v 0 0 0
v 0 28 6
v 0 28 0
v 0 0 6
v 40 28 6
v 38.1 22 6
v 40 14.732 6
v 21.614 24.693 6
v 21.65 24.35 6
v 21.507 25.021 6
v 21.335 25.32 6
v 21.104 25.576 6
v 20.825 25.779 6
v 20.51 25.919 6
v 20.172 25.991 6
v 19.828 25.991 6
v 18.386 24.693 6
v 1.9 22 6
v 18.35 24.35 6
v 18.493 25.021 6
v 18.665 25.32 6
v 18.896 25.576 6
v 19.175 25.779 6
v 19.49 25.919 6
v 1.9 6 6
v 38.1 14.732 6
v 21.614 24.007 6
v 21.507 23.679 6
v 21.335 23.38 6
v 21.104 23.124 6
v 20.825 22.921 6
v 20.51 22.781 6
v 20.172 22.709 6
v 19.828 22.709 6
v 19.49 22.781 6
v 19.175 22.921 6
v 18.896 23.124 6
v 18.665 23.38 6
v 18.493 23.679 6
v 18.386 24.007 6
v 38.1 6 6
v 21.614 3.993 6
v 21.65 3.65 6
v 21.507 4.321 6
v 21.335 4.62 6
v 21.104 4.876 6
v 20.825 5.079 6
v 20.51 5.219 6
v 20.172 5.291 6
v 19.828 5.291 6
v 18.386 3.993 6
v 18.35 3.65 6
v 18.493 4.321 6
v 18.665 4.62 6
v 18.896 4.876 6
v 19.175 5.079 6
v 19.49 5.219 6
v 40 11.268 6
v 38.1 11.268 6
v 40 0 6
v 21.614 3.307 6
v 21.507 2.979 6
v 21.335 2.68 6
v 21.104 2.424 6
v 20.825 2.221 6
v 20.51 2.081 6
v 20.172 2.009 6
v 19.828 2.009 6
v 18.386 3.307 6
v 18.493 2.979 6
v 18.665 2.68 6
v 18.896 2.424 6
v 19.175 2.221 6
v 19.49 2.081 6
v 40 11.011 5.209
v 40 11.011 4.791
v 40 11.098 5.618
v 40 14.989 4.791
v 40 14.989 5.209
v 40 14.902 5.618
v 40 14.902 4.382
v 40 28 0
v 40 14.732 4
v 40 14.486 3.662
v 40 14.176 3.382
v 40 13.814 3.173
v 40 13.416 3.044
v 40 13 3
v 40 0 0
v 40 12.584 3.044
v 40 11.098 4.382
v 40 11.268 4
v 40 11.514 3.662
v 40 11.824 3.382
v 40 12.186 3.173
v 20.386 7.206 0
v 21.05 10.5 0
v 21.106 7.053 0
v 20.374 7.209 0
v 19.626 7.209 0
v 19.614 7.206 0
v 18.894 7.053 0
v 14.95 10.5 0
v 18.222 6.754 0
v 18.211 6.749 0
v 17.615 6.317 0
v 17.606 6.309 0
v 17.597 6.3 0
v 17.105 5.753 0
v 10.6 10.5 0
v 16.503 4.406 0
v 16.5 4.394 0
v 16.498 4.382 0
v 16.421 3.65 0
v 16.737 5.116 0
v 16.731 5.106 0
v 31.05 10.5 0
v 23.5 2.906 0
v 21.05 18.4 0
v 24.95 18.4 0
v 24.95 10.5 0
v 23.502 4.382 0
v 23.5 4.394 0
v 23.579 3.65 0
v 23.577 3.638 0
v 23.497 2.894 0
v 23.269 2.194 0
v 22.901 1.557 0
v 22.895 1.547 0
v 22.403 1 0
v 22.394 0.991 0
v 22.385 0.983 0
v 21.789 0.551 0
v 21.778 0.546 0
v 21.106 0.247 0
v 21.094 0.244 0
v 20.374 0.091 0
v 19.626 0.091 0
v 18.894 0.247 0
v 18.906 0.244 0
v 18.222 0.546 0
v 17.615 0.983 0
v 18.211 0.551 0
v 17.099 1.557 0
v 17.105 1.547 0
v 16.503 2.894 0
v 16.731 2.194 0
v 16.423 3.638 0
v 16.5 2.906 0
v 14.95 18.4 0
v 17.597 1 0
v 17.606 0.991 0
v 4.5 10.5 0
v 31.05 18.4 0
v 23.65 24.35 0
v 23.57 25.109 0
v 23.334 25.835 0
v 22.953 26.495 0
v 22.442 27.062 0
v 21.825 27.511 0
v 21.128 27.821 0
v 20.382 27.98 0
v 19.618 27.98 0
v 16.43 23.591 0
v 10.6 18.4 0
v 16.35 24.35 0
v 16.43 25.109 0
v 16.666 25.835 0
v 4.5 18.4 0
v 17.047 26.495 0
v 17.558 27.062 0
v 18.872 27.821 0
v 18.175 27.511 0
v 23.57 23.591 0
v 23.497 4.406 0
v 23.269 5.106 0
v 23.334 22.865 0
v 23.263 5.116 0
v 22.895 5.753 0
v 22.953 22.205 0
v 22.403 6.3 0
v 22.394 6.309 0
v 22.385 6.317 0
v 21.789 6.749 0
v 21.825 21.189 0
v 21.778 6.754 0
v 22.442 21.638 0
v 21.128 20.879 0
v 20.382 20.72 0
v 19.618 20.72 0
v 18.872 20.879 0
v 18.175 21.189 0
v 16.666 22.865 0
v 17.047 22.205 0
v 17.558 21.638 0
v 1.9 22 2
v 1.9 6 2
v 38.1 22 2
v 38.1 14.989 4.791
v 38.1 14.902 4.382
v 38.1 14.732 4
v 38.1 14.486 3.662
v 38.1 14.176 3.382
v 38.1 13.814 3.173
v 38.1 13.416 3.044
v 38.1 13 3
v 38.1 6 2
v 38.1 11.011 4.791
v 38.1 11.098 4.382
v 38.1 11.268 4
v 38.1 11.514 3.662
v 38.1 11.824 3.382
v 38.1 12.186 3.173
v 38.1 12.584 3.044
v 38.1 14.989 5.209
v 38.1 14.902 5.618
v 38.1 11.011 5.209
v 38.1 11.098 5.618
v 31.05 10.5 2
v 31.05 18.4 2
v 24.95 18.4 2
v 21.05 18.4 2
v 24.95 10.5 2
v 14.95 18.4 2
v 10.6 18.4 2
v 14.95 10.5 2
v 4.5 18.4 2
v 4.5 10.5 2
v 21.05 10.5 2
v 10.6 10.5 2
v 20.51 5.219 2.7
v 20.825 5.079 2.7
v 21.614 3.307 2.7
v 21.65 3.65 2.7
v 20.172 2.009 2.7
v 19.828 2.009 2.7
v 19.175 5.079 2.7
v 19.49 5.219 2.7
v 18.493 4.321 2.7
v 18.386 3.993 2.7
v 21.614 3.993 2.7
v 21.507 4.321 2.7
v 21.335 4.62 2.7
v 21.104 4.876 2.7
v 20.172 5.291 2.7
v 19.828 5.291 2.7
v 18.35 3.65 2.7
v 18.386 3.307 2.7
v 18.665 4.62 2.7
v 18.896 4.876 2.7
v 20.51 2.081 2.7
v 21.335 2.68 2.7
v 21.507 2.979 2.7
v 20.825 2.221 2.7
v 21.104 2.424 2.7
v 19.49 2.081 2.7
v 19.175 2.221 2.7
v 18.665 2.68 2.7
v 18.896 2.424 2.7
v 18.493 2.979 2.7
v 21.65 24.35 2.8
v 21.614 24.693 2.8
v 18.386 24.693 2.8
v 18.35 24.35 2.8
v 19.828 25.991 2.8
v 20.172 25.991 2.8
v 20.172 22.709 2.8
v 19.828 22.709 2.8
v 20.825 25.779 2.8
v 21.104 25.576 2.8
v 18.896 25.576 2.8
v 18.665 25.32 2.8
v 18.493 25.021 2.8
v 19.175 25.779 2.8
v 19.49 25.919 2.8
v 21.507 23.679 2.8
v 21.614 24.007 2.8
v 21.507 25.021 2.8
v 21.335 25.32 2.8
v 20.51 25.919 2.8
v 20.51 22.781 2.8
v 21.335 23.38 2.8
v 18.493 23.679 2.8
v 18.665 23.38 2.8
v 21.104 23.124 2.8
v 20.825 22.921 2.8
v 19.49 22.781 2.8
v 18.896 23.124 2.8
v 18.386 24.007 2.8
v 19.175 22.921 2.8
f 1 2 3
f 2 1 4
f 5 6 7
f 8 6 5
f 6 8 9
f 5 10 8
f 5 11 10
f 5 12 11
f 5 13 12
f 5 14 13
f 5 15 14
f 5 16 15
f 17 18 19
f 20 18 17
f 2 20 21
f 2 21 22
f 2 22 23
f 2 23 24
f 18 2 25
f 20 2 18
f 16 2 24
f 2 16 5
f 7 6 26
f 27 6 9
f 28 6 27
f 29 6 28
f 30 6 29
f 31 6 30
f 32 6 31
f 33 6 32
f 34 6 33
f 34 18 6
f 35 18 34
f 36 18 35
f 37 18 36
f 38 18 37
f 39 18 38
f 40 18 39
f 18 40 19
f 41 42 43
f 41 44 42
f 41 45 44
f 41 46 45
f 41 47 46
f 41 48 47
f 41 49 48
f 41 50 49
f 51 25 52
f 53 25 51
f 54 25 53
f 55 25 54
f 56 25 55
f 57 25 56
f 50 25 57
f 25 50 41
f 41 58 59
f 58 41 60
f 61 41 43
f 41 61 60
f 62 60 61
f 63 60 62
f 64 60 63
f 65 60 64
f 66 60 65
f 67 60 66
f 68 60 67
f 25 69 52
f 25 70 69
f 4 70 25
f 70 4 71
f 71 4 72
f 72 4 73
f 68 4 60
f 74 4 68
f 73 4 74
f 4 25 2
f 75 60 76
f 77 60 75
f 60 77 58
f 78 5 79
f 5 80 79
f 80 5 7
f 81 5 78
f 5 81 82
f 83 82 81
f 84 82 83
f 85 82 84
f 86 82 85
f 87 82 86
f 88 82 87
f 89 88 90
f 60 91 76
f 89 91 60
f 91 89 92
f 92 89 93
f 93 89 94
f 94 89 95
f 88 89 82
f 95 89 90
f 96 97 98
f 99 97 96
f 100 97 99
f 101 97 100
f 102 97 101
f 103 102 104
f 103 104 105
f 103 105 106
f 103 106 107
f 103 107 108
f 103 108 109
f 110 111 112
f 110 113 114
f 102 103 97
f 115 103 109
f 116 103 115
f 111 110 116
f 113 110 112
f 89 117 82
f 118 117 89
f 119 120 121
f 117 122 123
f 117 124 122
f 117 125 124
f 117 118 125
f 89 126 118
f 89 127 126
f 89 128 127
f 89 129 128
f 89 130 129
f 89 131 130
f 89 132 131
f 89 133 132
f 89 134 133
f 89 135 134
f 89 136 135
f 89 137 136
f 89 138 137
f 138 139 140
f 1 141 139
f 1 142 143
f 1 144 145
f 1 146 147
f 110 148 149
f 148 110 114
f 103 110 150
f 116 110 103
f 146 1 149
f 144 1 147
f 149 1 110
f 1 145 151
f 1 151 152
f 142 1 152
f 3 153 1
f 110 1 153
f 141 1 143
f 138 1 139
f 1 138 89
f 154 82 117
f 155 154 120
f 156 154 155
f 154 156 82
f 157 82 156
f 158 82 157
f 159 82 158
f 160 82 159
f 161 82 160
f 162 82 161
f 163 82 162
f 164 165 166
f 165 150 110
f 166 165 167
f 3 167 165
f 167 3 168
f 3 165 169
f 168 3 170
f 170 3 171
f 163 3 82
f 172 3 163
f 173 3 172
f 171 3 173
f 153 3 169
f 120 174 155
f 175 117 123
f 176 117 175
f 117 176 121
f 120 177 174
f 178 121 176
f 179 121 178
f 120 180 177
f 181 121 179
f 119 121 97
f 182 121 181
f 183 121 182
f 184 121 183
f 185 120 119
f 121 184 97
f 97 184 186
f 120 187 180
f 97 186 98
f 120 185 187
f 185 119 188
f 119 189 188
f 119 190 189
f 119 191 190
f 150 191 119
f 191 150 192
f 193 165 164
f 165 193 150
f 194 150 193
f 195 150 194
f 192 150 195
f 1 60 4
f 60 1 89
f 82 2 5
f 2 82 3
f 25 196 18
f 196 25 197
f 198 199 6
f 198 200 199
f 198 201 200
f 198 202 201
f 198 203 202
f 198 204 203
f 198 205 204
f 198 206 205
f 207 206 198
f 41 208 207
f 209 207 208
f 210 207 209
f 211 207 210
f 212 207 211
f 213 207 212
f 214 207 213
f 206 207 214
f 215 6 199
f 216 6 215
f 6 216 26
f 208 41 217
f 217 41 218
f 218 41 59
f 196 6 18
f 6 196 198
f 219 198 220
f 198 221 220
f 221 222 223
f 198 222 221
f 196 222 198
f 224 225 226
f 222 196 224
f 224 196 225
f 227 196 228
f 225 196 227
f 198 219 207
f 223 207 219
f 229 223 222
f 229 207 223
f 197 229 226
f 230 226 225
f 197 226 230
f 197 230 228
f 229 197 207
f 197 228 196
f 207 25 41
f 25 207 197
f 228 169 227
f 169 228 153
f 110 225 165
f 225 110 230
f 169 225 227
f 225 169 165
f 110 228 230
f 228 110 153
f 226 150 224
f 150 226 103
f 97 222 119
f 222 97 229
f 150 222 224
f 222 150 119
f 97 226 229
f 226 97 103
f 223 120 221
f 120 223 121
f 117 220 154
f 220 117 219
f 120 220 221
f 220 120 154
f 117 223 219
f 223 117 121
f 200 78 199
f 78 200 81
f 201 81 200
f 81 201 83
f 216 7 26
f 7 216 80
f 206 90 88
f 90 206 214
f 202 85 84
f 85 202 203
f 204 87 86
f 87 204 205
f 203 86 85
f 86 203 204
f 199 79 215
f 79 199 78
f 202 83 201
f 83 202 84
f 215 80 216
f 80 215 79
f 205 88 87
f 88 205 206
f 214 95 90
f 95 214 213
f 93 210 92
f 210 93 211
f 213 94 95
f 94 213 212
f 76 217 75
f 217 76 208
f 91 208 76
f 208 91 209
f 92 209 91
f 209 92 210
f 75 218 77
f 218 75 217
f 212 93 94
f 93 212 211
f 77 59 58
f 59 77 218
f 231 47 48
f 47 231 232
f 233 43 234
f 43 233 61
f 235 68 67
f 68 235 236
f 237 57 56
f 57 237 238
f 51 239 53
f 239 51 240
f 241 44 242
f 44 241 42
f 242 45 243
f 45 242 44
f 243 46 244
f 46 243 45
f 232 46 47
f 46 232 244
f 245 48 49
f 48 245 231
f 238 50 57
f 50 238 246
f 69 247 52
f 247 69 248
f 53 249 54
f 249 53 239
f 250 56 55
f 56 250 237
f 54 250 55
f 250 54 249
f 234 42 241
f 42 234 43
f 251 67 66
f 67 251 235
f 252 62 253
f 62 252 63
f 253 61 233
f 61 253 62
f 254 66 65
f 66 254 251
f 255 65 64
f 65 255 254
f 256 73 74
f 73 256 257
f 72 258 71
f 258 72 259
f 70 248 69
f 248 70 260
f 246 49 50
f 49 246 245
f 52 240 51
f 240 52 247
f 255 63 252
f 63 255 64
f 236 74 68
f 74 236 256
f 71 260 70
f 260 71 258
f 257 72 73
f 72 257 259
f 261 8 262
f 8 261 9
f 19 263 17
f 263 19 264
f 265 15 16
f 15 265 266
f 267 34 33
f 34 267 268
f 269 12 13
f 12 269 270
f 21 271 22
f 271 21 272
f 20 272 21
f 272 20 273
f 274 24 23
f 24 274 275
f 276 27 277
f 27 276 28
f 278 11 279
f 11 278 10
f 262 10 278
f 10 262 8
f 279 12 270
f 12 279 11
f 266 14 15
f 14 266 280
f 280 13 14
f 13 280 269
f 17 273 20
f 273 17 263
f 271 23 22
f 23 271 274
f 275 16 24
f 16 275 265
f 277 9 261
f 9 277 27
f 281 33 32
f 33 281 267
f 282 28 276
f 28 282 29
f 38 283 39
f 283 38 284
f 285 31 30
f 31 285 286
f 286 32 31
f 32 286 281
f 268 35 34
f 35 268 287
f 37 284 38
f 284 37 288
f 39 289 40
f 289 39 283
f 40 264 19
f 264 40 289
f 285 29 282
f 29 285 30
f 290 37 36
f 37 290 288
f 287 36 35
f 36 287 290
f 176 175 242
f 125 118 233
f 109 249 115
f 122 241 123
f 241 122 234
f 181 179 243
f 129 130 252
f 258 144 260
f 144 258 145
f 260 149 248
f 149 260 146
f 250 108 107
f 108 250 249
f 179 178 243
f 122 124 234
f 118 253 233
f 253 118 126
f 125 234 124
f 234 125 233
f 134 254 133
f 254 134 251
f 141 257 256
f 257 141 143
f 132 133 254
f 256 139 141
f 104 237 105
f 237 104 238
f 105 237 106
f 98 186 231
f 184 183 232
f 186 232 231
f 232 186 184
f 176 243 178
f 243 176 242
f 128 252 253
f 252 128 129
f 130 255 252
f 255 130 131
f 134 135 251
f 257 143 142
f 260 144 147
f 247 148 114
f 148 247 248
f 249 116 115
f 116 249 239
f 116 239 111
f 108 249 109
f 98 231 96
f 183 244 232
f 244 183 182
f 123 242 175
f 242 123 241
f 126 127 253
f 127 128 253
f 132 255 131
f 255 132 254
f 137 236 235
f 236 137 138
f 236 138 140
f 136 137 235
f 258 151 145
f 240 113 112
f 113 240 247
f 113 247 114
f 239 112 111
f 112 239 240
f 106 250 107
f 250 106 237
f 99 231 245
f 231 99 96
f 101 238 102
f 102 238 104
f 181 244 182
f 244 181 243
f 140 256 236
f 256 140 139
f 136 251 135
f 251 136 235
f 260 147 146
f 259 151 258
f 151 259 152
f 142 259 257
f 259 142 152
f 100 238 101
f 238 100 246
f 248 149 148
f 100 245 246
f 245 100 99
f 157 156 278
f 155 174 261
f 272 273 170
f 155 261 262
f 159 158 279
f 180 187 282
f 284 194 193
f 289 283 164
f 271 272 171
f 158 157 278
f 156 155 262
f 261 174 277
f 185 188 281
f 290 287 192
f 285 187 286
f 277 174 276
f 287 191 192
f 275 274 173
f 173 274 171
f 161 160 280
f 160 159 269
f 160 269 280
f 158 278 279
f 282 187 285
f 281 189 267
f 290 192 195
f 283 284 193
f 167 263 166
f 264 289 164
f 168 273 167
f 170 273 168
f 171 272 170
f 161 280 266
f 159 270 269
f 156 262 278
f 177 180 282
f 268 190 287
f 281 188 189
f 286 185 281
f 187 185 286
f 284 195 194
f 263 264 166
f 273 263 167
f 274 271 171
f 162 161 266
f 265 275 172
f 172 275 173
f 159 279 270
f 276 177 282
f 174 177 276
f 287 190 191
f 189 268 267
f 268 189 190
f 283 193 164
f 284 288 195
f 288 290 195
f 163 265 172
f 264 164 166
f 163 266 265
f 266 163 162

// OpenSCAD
fan_connector_width = 6.1;
fan_connector_length = 7.9;

width=40;
length=28;
height=6;

module cone() {
    hull() {
        translate([0,0,1.9]) cylinder(d=3.3, h=1, $fn=30);
        cylinder(d=7.3, h=0.1, $fn=30);
    }
}

difference() {
    cube([width,length,height]);
    translate([(width-36.2)/2, (length-16)/2, 2]) cube([36.2,16,height]);
    translate([(width-36.2)/2+2.6, length/2-7.6/2+0.3, 0]) cube([fan_connector_width,fan_connector_length, 5]);
    translate([(width-36.2)/2+13.05, length/2-7.6/2+0.3, 0]) cube([fan_connector_width,fan_connector_length,5]);
    translate([(width-36.2)/2+23.05, length/2-7.6/2+0.3, 0]) cube([fan_connector_width,fan_connector_length,5]);
    
    translate([width-3, 26/2, 5]) rotate([0,90,0]) cylinder(d=4, h=5, $fn=30);
    
    translate([width/2, 3.3/2+2,-0.1]) cylinder(d=3.3, h=height+1, $fn=30);
    translate([width/2, length-3.3/2-2,-0.1]) cylinder(d=3.3, h=height+1, $fn=30);
    
    translate([width/2, 3.3/2+2,-0.2]) cone();
    translate([width/2, length-3.3/2-2,-0.1]) cone();
}
